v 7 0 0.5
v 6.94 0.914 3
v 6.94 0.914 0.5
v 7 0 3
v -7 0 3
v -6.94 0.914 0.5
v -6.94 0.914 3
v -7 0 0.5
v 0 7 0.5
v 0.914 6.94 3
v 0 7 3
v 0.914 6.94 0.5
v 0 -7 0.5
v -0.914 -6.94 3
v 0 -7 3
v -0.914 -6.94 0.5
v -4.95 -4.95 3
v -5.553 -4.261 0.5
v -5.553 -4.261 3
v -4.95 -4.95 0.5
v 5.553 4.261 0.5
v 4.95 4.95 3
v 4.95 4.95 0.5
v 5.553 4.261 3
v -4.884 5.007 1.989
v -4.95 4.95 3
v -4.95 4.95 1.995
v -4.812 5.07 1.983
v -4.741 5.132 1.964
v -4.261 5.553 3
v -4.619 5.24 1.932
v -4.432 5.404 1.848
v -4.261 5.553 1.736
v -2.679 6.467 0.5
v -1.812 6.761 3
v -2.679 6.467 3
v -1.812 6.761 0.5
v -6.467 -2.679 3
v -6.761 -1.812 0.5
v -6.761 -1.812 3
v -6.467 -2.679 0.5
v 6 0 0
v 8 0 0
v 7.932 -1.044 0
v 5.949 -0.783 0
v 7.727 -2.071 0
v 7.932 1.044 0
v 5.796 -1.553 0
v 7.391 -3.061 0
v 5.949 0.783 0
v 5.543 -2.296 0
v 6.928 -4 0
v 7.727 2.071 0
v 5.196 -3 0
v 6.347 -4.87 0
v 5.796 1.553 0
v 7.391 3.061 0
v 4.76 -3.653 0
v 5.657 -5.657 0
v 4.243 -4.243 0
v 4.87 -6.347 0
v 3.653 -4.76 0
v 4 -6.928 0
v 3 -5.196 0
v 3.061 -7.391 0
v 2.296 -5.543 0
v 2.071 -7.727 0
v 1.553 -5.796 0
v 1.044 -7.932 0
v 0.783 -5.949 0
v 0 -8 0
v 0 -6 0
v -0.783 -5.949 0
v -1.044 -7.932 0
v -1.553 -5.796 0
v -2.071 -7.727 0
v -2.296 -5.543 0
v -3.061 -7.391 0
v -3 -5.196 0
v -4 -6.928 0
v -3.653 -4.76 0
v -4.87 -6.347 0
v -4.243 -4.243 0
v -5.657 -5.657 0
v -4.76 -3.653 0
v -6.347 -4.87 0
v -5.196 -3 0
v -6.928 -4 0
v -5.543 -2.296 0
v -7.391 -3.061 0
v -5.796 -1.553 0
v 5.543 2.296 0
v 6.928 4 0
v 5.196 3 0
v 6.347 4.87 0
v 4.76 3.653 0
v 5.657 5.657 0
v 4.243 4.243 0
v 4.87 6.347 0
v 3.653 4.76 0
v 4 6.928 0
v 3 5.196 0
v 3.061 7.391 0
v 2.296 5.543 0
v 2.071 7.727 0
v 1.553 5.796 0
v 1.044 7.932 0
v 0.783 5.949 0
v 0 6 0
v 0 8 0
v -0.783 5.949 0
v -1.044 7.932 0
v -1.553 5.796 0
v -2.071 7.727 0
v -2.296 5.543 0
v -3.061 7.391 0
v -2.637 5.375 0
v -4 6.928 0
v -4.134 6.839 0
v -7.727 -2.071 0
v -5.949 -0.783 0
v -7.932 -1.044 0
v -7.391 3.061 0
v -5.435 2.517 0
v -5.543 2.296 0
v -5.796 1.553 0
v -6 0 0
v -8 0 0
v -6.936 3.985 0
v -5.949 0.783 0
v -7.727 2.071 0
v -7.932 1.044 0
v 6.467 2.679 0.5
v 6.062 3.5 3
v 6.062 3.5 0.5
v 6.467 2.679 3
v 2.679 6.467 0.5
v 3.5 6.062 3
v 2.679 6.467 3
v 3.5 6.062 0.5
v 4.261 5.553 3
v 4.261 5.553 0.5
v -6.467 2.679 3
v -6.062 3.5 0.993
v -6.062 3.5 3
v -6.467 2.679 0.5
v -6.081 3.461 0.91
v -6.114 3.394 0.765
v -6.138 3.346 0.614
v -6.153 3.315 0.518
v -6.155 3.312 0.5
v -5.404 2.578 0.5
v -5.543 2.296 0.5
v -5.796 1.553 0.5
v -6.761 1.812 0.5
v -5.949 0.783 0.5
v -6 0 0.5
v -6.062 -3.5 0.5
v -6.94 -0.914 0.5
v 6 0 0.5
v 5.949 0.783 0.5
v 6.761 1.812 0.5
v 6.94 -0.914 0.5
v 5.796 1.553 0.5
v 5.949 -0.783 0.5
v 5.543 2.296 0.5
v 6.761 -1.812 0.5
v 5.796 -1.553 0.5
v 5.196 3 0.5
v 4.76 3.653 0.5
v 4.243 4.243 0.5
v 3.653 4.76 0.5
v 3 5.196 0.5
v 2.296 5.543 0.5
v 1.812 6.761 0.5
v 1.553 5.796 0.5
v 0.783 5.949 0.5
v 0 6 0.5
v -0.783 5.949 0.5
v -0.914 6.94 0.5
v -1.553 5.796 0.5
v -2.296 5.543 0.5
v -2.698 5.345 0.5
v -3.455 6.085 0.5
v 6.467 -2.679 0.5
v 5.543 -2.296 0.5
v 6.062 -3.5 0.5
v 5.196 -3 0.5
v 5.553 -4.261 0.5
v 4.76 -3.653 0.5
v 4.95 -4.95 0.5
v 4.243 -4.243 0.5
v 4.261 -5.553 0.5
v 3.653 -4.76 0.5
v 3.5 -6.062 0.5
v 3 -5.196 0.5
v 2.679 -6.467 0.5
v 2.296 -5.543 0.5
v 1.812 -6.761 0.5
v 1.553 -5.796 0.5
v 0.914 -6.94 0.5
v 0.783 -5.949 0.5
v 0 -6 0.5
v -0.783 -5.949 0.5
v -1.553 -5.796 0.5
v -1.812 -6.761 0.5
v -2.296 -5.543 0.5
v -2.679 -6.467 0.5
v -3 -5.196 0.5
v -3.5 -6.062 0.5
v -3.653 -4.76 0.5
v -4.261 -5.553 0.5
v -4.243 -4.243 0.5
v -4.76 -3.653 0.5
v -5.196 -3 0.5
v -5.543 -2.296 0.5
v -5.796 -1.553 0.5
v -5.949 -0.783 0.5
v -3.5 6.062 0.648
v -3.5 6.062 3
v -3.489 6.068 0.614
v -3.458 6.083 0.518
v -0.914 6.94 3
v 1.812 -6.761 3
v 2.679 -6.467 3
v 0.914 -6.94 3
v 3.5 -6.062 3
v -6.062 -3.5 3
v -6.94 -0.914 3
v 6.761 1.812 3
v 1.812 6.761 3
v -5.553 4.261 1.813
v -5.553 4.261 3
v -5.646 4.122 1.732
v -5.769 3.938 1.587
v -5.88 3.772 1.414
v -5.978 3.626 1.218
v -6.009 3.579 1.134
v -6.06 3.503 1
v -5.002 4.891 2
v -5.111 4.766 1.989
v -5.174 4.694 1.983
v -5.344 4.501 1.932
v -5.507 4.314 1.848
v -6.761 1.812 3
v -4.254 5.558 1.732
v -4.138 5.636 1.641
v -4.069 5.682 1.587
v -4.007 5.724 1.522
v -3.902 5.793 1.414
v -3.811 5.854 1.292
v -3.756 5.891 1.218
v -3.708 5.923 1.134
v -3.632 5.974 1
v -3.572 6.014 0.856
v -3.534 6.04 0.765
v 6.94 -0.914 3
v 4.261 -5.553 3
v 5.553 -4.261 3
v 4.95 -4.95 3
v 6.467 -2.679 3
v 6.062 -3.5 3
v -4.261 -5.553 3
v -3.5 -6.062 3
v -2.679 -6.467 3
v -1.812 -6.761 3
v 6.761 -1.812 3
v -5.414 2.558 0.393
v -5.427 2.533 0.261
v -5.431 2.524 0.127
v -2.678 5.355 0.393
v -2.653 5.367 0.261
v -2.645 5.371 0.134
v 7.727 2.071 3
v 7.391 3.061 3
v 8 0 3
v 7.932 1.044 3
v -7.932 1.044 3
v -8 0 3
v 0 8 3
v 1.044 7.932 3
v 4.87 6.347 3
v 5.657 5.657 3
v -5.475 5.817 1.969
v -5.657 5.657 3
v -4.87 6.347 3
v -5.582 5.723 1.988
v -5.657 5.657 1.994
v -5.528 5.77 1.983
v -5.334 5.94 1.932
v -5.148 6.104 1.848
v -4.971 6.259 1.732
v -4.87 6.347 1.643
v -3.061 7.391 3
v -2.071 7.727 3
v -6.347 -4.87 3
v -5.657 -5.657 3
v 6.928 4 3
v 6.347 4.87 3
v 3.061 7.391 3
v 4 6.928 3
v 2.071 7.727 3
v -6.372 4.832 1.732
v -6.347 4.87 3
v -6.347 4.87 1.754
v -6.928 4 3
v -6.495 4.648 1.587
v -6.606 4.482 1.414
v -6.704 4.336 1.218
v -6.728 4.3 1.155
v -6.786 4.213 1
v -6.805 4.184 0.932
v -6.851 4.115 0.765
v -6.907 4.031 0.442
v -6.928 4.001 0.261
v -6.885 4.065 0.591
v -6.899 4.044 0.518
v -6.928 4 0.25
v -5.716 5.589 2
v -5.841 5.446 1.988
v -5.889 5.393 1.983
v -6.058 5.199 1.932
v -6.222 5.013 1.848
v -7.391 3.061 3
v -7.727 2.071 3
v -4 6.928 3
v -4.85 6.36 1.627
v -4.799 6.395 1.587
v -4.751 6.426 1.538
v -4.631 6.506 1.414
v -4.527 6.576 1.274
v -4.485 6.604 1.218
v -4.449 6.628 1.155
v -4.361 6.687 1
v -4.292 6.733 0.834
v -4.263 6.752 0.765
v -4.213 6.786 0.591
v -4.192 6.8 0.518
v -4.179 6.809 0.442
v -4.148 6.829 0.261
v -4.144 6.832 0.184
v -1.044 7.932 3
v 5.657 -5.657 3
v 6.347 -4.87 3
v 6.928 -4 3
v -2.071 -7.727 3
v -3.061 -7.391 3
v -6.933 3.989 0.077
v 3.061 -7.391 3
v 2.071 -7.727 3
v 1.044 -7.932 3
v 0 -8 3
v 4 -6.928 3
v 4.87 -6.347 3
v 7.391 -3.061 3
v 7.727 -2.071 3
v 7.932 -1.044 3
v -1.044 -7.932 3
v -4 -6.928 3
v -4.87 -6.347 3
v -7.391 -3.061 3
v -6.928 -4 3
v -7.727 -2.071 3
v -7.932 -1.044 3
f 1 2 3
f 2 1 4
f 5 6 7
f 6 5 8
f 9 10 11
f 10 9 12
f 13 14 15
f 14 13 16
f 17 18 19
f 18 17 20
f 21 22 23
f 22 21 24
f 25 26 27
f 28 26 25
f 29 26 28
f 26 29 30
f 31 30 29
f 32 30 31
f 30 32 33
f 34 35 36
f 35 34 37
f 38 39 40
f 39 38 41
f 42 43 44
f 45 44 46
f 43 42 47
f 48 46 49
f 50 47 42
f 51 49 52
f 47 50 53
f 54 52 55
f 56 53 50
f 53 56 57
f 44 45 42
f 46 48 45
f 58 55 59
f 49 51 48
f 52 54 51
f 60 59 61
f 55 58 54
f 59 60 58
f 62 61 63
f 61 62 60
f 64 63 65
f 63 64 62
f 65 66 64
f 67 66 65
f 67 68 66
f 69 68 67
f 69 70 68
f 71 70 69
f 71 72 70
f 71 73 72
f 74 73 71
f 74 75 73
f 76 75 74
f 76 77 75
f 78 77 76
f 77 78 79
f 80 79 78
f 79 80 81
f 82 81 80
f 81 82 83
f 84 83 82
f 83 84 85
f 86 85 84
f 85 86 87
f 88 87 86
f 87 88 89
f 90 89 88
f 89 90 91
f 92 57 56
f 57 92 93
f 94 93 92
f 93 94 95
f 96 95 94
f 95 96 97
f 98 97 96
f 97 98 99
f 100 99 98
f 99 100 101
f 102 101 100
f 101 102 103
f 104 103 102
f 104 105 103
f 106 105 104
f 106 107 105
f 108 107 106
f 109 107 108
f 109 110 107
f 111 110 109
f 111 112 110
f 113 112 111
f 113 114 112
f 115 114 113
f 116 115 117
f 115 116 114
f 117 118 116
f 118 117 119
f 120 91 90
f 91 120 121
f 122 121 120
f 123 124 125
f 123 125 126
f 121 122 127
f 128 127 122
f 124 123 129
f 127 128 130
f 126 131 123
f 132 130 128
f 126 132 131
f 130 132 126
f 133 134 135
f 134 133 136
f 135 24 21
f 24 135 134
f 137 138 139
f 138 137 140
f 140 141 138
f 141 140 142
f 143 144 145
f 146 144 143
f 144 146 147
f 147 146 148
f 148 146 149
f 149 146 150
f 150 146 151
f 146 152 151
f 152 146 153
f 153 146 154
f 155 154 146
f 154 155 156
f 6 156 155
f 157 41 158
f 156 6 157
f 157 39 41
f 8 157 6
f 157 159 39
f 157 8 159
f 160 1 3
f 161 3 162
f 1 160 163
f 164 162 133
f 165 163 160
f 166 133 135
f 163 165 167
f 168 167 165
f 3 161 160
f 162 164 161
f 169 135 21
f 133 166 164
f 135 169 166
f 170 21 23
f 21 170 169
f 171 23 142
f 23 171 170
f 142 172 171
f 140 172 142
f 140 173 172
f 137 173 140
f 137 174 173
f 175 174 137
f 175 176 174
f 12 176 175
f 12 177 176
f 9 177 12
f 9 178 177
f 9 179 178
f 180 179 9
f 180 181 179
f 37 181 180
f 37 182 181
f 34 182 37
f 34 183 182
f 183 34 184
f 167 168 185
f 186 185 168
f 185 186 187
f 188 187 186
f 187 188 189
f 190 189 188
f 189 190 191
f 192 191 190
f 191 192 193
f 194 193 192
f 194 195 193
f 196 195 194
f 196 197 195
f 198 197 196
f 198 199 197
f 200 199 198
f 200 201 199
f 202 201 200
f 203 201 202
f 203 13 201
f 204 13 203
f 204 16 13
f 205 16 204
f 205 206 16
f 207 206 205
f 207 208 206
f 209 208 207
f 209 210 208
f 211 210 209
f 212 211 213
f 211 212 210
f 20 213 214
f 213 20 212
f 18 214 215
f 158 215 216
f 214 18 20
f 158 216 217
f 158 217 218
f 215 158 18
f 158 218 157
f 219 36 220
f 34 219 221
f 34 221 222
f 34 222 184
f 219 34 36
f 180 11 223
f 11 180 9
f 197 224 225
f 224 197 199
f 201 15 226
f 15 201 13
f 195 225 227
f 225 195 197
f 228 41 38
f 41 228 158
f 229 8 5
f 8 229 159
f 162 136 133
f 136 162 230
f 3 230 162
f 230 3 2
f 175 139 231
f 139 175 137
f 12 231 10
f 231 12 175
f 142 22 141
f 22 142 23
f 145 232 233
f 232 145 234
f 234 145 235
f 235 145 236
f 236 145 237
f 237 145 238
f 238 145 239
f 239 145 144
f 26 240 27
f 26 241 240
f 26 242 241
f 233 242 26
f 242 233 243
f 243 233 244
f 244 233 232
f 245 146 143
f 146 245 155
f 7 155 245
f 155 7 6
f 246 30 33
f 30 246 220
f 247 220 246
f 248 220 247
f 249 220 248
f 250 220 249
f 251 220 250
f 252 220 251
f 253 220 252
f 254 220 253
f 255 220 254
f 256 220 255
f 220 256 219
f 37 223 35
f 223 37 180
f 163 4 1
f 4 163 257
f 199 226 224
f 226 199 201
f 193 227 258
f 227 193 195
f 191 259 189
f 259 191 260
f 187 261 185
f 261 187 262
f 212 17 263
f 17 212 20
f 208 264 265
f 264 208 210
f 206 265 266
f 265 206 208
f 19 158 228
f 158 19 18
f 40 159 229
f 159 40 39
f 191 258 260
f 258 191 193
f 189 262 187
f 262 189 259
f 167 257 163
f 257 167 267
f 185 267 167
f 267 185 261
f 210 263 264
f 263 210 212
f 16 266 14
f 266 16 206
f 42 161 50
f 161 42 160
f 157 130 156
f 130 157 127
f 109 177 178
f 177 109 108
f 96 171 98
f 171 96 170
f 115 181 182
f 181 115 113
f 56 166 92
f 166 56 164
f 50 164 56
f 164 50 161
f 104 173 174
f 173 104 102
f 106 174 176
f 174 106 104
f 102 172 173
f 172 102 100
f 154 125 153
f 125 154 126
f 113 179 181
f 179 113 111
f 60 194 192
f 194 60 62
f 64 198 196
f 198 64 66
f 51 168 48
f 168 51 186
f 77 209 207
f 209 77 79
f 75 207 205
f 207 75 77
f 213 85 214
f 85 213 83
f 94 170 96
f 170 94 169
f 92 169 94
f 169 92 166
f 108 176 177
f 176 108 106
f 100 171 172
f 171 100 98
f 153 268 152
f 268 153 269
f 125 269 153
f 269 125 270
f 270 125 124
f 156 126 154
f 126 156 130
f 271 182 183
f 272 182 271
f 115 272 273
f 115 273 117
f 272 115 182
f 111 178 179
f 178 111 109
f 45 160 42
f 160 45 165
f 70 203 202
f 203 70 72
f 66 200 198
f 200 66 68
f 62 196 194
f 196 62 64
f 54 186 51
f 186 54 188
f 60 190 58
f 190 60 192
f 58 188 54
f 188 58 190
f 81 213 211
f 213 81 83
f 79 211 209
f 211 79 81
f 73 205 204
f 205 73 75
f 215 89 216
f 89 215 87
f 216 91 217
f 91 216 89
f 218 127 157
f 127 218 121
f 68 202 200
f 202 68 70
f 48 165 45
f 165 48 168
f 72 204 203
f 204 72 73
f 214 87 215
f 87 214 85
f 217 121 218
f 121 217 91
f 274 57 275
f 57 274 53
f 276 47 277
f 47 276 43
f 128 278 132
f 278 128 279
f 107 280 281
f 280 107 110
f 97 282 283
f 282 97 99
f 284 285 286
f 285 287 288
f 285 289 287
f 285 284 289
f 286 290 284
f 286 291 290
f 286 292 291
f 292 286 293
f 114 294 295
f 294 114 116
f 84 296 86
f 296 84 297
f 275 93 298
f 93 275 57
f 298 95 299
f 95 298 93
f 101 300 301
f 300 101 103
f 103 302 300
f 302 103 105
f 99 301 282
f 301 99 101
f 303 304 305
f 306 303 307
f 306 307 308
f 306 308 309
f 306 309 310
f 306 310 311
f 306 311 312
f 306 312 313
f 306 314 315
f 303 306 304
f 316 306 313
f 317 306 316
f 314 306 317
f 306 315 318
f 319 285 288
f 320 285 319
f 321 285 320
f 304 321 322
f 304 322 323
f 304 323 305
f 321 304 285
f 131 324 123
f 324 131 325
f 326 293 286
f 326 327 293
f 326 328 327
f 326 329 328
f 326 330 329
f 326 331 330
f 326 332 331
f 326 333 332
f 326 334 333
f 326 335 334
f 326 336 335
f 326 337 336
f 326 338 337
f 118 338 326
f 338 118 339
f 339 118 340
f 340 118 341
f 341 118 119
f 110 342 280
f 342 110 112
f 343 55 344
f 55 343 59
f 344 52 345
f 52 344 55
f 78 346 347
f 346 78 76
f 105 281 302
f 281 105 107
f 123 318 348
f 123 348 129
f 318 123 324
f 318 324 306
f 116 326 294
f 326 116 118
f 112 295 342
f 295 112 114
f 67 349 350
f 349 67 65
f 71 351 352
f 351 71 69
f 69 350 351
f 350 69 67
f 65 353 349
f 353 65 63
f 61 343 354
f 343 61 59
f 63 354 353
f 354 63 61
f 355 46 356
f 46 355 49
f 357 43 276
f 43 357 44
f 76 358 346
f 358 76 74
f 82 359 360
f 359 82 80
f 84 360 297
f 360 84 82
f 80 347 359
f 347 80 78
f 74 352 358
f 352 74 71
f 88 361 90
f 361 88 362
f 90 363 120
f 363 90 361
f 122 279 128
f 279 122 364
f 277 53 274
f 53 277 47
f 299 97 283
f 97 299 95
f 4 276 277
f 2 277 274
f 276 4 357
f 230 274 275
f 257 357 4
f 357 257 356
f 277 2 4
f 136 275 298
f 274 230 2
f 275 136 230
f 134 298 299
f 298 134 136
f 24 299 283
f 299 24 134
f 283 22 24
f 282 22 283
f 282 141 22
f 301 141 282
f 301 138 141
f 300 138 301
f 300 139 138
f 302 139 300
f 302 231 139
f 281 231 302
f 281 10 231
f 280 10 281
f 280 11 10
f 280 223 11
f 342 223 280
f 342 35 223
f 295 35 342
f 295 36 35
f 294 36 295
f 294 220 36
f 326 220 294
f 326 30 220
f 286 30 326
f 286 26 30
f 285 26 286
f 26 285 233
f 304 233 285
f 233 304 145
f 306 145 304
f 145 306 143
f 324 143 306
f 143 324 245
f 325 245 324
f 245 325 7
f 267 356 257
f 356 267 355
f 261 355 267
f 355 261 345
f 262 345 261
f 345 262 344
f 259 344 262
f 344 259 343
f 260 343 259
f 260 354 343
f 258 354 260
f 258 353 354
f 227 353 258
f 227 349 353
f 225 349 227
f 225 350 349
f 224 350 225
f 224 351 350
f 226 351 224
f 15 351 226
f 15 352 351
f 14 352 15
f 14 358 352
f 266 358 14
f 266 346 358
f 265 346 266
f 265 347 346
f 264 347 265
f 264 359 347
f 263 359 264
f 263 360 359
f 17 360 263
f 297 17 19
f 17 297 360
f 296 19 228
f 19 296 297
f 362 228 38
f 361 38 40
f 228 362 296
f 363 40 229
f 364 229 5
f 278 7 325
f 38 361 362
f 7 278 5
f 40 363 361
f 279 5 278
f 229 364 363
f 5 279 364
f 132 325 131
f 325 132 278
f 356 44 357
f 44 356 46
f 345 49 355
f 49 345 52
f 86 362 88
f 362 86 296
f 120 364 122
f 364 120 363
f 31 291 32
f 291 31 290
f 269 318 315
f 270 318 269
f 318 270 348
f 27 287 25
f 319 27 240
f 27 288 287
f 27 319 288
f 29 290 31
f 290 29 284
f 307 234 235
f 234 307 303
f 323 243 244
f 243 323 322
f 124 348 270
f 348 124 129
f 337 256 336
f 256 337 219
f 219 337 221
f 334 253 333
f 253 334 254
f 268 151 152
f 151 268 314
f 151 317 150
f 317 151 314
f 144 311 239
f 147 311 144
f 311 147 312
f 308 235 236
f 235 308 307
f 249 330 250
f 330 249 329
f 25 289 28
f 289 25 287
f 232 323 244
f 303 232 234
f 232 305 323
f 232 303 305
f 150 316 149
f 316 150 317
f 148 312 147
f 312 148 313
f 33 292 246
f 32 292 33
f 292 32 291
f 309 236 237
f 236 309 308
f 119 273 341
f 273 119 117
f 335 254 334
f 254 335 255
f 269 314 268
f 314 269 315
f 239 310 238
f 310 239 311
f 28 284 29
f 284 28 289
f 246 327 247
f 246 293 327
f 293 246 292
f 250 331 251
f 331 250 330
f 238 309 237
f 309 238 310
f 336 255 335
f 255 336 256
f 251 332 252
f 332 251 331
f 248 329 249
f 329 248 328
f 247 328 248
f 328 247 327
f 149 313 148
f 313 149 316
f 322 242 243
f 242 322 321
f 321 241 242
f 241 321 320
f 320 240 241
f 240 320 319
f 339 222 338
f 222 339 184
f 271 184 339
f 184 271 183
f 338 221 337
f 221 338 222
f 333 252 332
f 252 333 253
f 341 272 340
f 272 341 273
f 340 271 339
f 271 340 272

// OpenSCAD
// file: ../build_environments.scad
// build_environments.scad: modules to build level sections
//

module pool(diameter=10.0, wall_height=2.0, step_width=3.0, connections=[])
{
    difference() {
        union() {
        difference() {
            cylinder(h=0.5,r1=diameter+step_width,r2=diameter+step_width,$fn=48);
            translate([0,0,-0.1])
                cylinder(h=0.7,r1=diameter,r2=diameter,$fn=48);
        }
        difference() {
            cylinder(h=wall_height,r1=diameter+step_width+1.0,r2=diameter+step_width+1.0,$fn=48);
            translate([0,0,-0.1])
                cylinder(h=wall_height+0.2,r1=diameter+step_width,r2=diameter+step_width,$fn=48);
        }
        }
    
        for (c = connections)
        {
            rotate([0,90,0]) {
                angle = atan2(c[1],c[0]);
                rotate([-angle,0,0]) {
                    cylinder(h=diameter+5.0,r1=c[2],r2=c[2],$fn=48);
                }
            }
        }
    }
}

module straight(length=10.0, width=2.0, dy1=0.0, dy2=0.0, dz=0.0)
{
    dims = [0, 0, 0, 0, 0, (dz/length)];
    matrix = [
        [ 1, dims[0], dims[1], 0 ],
        [ dims[2], 1, dims[4], 0 ],
        [ dims[5], dims[3], 1, 0 ],
        [ 0, 0, 0, 1 ]
    ];
    multmatrix(matrix)
    difference() {
        translate([dy1,0,0])
        union() {
            rotate([0,90,0]) {
                difference() {
                    cylinder(h=(length-dy1-dy2),r1=width+1.0,r2=width+1.0,$fn=24);
                    translate([0,0,-0.1])
                        cylinder(h=(length-dy1-dy2+0.2),r1=width,r2=width,$fn=24);
                }
                difference() {
                    cylinder(h=1.0,r1=width+2.0,r2=width+2.0,$fn=24);
                    translate([0,0,-0.1])
                        cylinder(h=1.2,r1=width,r2=width,$fn=24);
                }
                translate([0,0,(length-dy1-dy2)-1.0]) {
                    difference() {
                        cylinder(h=1.0,r1=width+2.0,r2=width+2.0,$fn=24);
                        translate([0,0,-0.1])
                            cylinder(h=1.2,r1=width,r2=width,$fn=24);
                    }
                }
            }
        }
        translate([0,0,-(2*width+4.0)/2])
            cube([3*length,3*length,2*width+4.0],center=true);
    }
}

module curve(p0=[0,0], center=[0,0], dir=1, angle=0.0, width=2.0)
{
    radius = sqrt((p0[0]-center[0])*(p0[0]-center[0]) + (p0[1]-center[1])*(p0[1]-center[1]));
    if (dir == 0) {
        difference() {
            rotate([0,0,-90])
            difference() {
                rotate_extrude(angle = angle, convexity = 10, $fn=32)
                    translate([radius, 0, 0])
                        circle(r = width+1.0,$fn=24);
                rotate([0,0,-1.0])
                    rotate_extrude(angle = angle+2.0, convexity = 10, $fn=32)
                        translate([radius, 0, 0])
                            circle(r = width,$fn=24);
            }
            translate([0,0,-(2*width+4.0)/2])
                cube([5*radius,5*radius,2*width+4.0],center=true);
        }
    }
    else {
        difference() {
            rotate([0,0,90])
            difference() {
                rotate_extrude(angle = -angle, convexity = 10, $fn=32)
                    translate([radius, 0, 0])
                        circle(r = width+1.0,$fn=24);
                rotate([0,0,1.0])
                    rotate_extrude(angle = -angle-2.0, convexity = 10, $fn=32)
                        translate([radius, 0, 0])
                            circle(r = width,$fn=24);
            }
            translate([0,0,-(2*width+4.0)/2])
                cube([5*radius,5*radius,2*width+4.0],center=true);
        }
    }

}

// test pool
//pool(diameter=12.0000, wall_height=3.0000, step_width=3.0000, connections=[[0.0000,-26.0000,2.0000], [23.6074,0.0000,2.0000]]);

// test straight, slope
//straight(length=26.0000, width=2.0000, dy1=11.8322, dy2=6.7082, dz=0.0000);
//straight(length=29.1549, width=12.0000, dy1=0.0000, dy2=0.0000, dz=-15.0000);

// test curve
//curve(p0=[23.6074, 0.0000], center=[23.6074, 5.0000], dir=0, angle=60.1011, width=2.0000);
//curve(p0=[33.6426, 12.4219], center=[37.9771, 9.9295], dir=1, angle=120.4627, width=2.0000);
// main file
use <../build_environments.scad>;
pool(diameter=6.0000, wall_height=3.0000, step_width=1.0000, connections=[[-5.2503,5.1336,2.0000]]);
